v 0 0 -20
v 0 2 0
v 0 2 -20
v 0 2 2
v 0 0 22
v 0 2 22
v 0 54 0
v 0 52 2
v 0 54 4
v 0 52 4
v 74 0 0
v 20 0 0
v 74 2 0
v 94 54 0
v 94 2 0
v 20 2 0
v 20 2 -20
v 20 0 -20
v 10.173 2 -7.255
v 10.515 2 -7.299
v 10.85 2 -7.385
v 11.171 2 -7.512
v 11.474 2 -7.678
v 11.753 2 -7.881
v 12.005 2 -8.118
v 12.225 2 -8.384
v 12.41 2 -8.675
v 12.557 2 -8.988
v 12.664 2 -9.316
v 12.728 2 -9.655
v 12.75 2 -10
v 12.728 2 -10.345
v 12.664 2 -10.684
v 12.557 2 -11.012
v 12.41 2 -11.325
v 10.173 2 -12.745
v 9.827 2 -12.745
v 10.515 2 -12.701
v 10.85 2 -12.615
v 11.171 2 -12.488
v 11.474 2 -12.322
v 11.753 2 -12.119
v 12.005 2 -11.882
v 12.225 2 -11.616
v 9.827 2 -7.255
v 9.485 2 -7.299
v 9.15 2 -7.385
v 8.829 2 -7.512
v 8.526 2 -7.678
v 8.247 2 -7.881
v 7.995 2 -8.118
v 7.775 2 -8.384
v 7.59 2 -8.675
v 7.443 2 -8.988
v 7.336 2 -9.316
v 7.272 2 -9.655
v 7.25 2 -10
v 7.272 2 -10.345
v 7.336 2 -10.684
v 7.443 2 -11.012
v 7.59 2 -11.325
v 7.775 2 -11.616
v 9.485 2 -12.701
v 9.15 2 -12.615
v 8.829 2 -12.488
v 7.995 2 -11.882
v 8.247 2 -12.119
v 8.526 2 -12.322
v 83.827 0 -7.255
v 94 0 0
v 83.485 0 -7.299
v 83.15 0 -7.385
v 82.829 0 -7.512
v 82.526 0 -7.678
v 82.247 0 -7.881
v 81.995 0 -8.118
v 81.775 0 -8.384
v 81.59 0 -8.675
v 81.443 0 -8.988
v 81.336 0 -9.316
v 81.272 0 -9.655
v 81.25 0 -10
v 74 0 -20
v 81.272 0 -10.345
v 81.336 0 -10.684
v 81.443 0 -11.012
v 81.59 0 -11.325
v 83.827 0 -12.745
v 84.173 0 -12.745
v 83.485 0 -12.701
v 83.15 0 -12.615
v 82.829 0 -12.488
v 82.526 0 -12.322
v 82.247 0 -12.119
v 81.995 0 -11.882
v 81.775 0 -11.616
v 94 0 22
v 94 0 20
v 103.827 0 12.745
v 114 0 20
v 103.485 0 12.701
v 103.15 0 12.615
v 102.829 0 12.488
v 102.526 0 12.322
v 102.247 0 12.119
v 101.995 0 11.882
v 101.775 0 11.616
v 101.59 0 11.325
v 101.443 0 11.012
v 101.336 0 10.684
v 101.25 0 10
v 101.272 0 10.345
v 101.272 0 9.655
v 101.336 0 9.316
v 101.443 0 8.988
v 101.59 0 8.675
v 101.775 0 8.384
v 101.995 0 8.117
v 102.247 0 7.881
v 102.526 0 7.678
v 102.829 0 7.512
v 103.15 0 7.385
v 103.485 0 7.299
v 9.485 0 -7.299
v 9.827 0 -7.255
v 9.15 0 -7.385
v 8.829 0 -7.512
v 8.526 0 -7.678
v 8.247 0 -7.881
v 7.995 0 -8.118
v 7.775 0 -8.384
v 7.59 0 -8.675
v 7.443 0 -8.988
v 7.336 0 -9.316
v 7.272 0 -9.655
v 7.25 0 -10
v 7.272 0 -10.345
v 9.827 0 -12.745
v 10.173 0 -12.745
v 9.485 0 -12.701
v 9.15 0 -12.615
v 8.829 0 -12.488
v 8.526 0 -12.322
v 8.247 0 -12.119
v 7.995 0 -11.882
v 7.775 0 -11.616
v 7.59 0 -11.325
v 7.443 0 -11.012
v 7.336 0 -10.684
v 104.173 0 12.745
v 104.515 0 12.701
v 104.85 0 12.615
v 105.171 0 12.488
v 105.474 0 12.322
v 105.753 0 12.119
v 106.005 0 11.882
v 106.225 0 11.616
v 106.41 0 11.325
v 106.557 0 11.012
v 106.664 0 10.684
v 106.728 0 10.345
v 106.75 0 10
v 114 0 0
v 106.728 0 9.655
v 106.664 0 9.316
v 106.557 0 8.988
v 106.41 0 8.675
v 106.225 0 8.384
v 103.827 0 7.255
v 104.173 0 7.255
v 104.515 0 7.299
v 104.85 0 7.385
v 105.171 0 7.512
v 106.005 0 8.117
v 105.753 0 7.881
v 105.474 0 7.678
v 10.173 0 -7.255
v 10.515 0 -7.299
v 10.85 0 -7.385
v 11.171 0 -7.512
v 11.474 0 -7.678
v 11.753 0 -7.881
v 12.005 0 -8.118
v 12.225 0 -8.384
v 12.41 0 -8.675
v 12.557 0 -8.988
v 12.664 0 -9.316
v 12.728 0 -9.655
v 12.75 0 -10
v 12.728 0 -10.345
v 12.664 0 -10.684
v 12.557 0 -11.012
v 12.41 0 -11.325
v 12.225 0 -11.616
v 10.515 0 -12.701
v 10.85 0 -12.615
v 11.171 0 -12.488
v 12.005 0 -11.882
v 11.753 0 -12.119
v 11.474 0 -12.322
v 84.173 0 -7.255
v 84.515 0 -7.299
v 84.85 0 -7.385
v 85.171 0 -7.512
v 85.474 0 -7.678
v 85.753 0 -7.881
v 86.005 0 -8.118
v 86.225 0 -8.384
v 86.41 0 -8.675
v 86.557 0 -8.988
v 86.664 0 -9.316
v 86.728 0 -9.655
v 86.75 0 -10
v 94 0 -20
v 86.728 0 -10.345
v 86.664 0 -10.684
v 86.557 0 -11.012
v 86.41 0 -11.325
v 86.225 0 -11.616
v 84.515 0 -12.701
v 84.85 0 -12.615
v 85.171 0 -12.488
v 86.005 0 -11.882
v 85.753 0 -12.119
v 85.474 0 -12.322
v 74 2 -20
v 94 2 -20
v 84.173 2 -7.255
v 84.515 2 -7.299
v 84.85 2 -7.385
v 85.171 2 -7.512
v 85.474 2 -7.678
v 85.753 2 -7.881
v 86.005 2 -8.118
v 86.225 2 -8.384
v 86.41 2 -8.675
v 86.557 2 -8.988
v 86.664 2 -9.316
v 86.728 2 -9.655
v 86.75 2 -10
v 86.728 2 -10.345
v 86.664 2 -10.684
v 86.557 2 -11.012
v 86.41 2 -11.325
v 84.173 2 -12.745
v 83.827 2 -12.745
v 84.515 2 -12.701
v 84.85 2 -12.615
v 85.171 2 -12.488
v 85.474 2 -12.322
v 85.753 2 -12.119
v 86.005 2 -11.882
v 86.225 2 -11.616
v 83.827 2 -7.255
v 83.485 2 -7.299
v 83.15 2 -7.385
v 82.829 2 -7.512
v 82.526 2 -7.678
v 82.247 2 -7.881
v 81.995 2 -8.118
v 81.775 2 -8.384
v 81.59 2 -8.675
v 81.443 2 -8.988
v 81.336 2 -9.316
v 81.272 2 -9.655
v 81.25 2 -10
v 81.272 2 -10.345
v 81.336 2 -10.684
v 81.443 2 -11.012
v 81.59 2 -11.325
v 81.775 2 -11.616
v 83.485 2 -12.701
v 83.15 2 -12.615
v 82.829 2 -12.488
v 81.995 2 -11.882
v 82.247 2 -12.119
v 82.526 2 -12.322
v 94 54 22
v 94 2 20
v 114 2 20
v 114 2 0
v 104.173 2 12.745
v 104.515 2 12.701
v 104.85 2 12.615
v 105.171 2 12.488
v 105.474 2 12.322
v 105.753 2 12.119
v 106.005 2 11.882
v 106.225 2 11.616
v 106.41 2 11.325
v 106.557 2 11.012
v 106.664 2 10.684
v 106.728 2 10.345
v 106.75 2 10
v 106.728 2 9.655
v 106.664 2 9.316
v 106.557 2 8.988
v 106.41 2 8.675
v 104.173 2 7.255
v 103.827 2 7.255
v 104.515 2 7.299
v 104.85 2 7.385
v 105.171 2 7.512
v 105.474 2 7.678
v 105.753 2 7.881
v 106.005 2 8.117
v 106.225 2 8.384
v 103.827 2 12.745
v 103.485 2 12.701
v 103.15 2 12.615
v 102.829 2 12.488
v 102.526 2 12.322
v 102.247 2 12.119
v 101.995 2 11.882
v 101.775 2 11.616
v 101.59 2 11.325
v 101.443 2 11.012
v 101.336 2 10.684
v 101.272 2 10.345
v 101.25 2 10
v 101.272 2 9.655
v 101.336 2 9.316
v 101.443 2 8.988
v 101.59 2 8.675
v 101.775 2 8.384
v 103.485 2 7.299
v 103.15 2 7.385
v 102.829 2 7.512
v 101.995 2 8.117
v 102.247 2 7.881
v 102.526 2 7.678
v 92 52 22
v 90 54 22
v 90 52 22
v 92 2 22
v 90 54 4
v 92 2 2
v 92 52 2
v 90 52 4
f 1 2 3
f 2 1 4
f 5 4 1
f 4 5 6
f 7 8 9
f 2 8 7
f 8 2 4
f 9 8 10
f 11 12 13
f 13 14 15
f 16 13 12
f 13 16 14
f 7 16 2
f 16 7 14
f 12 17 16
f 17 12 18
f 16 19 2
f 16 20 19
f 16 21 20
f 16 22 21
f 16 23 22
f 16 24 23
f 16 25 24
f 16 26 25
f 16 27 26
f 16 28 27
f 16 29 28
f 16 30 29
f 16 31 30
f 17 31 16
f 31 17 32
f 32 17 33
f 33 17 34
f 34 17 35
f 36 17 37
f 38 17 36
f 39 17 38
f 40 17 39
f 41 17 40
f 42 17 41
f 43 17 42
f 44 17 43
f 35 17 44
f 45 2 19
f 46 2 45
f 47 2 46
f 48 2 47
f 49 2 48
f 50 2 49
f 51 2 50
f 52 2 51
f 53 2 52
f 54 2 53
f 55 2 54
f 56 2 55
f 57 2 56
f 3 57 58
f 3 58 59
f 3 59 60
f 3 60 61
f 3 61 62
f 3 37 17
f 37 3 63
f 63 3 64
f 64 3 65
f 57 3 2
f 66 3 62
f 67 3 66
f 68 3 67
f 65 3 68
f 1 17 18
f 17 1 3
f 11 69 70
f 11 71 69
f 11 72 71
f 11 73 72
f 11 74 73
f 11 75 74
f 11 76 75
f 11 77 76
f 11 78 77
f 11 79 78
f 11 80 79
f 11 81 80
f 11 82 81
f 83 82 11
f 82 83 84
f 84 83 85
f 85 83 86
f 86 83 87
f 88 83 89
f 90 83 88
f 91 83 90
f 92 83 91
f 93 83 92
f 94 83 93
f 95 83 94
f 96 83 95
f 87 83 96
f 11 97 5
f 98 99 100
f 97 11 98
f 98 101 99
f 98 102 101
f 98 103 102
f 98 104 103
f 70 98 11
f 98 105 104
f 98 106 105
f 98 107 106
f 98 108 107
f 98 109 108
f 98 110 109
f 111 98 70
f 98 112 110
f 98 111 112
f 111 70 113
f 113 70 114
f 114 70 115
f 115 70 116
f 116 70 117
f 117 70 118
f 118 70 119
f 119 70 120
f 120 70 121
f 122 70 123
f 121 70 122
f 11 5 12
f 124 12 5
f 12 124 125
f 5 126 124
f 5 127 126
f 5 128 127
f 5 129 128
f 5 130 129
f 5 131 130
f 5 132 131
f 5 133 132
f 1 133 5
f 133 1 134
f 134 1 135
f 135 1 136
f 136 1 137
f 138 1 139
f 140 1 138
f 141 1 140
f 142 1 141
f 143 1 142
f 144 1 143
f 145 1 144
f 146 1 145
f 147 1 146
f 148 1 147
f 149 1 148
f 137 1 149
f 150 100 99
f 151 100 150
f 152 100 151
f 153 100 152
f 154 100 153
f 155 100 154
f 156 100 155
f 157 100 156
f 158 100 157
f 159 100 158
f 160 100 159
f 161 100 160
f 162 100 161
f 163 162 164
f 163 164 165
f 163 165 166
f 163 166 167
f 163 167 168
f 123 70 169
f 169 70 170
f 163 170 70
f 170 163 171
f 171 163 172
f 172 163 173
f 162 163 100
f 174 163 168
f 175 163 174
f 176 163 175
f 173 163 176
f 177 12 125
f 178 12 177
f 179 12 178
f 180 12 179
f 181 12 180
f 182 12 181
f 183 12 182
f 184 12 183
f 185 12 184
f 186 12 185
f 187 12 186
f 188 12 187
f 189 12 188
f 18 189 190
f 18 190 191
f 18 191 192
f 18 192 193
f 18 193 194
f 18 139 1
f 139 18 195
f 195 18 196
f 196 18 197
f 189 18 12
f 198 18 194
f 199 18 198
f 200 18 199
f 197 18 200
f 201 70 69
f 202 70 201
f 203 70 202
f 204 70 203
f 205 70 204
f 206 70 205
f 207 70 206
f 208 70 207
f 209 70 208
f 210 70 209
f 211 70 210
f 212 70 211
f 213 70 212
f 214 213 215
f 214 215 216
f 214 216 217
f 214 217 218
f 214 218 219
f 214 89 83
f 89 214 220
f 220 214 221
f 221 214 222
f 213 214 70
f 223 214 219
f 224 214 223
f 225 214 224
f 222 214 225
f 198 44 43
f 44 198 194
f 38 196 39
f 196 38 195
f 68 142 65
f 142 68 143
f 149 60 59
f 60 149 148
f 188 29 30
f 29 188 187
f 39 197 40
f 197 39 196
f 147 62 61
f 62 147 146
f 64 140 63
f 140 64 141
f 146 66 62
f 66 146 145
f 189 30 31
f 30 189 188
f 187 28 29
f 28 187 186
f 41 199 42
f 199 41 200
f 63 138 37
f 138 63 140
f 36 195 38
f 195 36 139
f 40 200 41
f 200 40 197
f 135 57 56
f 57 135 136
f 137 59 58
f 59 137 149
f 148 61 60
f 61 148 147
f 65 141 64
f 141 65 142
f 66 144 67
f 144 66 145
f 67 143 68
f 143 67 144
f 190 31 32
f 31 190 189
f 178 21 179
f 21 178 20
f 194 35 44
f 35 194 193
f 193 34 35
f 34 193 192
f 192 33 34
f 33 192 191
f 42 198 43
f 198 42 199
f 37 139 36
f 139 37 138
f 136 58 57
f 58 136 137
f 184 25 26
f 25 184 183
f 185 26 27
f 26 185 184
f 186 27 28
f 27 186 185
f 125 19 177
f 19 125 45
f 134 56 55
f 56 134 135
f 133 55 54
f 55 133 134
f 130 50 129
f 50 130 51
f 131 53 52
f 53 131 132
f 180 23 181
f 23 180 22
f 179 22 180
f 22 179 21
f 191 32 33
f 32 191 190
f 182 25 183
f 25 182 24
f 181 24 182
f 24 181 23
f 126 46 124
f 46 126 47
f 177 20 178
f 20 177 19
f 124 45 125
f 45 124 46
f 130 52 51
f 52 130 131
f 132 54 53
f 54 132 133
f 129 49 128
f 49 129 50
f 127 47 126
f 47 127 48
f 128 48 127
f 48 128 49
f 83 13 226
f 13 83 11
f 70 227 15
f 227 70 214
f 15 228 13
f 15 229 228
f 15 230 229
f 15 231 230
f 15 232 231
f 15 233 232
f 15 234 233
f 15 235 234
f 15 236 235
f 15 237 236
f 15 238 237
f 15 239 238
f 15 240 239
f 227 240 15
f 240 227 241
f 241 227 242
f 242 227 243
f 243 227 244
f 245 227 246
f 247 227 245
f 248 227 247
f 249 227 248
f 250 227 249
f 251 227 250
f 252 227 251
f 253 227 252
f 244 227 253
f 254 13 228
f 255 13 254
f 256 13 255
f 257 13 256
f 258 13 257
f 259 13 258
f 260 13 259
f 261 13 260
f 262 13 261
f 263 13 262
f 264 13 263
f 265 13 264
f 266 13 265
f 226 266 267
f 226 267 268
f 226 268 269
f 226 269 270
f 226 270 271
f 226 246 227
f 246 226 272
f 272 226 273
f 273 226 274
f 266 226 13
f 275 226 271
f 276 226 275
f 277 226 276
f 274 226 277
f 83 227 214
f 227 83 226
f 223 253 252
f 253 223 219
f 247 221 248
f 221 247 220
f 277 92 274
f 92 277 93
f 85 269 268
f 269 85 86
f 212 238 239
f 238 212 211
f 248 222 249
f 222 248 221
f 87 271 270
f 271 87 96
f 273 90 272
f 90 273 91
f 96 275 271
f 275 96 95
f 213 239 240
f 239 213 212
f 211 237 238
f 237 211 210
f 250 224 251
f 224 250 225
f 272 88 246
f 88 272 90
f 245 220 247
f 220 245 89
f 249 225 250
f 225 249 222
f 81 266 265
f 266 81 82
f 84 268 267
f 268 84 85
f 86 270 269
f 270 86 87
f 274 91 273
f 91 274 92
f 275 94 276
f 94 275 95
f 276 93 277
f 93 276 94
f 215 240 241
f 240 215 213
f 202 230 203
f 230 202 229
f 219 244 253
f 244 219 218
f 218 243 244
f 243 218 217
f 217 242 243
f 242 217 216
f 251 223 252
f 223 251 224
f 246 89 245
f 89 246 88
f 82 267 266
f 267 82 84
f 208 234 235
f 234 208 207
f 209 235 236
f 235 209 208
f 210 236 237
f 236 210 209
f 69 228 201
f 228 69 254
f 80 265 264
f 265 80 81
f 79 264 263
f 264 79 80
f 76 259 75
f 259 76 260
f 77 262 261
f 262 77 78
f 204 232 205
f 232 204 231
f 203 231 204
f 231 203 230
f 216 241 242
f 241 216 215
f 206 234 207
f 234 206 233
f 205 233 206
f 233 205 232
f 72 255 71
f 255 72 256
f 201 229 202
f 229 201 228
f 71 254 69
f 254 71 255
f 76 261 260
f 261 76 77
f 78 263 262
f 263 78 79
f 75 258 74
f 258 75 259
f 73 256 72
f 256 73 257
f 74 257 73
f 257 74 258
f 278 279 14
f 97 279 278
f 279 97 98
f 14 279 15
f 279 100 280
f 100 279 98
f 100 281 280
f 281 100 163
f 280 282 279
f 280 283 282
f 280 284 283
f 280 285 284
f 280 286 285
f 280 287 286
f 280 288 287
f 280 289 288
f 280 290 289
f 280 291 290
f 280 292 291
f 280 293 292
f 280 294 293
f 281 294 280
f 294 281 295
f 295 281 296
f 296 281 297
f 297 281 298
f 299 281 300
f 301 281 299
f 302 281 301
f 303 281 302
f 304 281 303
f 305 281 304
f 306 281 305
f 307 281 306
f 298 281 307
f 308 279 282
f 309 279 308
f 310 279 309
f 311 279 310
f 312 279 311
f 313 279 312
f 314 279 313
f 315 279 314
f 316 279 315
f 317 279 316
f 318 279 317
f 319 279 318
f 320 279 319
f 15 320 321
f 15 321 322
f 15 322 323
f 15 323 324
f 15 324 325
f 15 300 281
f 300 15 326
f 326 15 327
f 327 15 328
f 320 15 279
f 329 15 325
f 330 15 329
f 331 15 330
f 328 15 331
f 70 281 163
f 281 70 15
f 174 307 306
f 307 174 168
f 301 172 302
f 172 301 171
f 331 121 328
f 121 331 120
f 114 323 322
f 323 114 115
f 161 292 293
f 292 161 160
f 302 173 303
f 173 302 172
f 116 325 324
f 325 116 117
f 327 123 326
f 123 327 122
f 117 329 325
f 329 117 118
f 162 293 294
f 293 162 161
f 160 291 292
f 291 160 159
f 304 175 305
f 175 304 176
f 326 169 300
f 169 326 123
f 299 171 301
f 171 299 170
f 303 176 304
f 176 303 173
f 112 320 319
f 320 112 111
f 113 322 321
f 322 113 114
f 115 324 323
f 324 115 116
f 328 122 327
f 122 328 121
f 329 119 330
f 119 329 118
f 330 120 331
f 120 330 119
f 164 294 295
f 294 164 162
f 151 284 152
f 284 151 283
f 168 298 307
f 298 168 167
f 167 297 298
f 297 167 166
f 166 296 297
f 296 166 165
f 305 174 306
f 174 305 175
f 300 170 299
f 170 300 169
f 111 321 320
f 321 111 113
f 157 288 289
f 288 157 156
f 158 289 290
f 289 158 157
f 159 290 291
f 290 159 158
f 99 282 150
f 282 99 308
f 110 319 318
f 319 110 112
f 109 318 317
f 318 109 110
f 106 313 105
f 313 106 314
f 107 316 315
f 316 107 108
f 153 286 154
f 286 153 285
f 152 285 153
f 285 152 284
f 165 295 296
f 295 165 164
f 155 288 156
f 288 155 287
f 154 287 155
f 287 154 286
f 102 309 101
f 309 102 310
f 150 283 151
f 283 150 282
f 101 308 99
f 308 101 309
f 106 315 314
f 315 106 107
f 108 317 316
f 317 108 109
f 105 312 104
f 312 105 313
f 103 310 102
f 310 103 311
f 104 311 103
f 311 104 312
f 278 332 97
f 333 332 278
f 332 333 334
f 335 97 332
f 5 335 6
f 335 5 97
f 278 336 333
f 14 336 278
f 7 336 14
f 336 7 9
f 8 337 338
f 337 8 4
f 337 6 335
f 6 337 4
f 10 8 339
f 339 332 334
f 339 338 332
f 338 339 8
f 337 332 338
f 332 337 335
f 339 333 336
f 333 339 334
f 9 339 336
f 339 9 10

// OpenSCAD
BaseWidth = 90;
BaseDepth = 50;
BaseHeightBottom = 20;

WallThickness = 2;

AnchorWidth = 20;
AnchorHeight = 20;
AhcnorHoleDiameter = 5.5;



// Bottom main body
difference() {
    cube(size=[BaseWidth+2*WallThickness, BaseDepth+2*WallThickness, BaseHeightBottom+WallThickness], center=false);
    
    translate([0, WallThickness, WallThickness])
    cube(size=[BaseWidth, BaseDepth, BaseHeightBottom], center=false);

    translate([WallThickness, WallThickness, WallThickness])
    cube(size=[BaseWidth, BaseDepth, BaseHeightBottom], center=false);
    
    translate([-WallThickness, WallThickness*2, WallThickness*2])
    cube(size=[BaseWidth+WallThickness, BaseDepth, BaseHeightBottom], center=false);
}

// Bottom anchor 1
translate([0, 0, -AnchorHeight])
    difference() {
        cube(size=[AnchorWidth, WallThickness, AnchorHeight], center=false);
        translate([AnchorWidth/2, 0, AnchorHeight/2])
        rotate([-90, 0, 0])
        cylinder(h=WallThickness, d=AhcnorHoleDiameter, center=false, $fn=50);
    }

// Bottom anchor 2
translate([BaseWidth+2*WallThickness-AnchorWidth, 0, -AnchorHeight])
    difference() {
        cube(size=[AnchorWidth, WallThickness, AnchorHeight], center=false);
        translate([AnchorWidth/2, 0, AnchorHeight/2])
        rotate([-90, 0, 0])
        cylinder(h=WallThickness, d=AhcnorHoleDiameter, center=false, $fn=50);
    }

// Side anchor
translate([BaseWidth+WallThickness*2, 0, 0])
    difference() {
        cube(size=[AnchorHeight, WallThickness, AnchorWidth], center=false);
        translate([AnchorHeight/2, 0, AnchorWidth/2])
        rotate([-90, 0, 0])
        cylinder(h=WallThickness, d=AhcnorHoleDiameter, center=false, $fn=50);
    }
 
